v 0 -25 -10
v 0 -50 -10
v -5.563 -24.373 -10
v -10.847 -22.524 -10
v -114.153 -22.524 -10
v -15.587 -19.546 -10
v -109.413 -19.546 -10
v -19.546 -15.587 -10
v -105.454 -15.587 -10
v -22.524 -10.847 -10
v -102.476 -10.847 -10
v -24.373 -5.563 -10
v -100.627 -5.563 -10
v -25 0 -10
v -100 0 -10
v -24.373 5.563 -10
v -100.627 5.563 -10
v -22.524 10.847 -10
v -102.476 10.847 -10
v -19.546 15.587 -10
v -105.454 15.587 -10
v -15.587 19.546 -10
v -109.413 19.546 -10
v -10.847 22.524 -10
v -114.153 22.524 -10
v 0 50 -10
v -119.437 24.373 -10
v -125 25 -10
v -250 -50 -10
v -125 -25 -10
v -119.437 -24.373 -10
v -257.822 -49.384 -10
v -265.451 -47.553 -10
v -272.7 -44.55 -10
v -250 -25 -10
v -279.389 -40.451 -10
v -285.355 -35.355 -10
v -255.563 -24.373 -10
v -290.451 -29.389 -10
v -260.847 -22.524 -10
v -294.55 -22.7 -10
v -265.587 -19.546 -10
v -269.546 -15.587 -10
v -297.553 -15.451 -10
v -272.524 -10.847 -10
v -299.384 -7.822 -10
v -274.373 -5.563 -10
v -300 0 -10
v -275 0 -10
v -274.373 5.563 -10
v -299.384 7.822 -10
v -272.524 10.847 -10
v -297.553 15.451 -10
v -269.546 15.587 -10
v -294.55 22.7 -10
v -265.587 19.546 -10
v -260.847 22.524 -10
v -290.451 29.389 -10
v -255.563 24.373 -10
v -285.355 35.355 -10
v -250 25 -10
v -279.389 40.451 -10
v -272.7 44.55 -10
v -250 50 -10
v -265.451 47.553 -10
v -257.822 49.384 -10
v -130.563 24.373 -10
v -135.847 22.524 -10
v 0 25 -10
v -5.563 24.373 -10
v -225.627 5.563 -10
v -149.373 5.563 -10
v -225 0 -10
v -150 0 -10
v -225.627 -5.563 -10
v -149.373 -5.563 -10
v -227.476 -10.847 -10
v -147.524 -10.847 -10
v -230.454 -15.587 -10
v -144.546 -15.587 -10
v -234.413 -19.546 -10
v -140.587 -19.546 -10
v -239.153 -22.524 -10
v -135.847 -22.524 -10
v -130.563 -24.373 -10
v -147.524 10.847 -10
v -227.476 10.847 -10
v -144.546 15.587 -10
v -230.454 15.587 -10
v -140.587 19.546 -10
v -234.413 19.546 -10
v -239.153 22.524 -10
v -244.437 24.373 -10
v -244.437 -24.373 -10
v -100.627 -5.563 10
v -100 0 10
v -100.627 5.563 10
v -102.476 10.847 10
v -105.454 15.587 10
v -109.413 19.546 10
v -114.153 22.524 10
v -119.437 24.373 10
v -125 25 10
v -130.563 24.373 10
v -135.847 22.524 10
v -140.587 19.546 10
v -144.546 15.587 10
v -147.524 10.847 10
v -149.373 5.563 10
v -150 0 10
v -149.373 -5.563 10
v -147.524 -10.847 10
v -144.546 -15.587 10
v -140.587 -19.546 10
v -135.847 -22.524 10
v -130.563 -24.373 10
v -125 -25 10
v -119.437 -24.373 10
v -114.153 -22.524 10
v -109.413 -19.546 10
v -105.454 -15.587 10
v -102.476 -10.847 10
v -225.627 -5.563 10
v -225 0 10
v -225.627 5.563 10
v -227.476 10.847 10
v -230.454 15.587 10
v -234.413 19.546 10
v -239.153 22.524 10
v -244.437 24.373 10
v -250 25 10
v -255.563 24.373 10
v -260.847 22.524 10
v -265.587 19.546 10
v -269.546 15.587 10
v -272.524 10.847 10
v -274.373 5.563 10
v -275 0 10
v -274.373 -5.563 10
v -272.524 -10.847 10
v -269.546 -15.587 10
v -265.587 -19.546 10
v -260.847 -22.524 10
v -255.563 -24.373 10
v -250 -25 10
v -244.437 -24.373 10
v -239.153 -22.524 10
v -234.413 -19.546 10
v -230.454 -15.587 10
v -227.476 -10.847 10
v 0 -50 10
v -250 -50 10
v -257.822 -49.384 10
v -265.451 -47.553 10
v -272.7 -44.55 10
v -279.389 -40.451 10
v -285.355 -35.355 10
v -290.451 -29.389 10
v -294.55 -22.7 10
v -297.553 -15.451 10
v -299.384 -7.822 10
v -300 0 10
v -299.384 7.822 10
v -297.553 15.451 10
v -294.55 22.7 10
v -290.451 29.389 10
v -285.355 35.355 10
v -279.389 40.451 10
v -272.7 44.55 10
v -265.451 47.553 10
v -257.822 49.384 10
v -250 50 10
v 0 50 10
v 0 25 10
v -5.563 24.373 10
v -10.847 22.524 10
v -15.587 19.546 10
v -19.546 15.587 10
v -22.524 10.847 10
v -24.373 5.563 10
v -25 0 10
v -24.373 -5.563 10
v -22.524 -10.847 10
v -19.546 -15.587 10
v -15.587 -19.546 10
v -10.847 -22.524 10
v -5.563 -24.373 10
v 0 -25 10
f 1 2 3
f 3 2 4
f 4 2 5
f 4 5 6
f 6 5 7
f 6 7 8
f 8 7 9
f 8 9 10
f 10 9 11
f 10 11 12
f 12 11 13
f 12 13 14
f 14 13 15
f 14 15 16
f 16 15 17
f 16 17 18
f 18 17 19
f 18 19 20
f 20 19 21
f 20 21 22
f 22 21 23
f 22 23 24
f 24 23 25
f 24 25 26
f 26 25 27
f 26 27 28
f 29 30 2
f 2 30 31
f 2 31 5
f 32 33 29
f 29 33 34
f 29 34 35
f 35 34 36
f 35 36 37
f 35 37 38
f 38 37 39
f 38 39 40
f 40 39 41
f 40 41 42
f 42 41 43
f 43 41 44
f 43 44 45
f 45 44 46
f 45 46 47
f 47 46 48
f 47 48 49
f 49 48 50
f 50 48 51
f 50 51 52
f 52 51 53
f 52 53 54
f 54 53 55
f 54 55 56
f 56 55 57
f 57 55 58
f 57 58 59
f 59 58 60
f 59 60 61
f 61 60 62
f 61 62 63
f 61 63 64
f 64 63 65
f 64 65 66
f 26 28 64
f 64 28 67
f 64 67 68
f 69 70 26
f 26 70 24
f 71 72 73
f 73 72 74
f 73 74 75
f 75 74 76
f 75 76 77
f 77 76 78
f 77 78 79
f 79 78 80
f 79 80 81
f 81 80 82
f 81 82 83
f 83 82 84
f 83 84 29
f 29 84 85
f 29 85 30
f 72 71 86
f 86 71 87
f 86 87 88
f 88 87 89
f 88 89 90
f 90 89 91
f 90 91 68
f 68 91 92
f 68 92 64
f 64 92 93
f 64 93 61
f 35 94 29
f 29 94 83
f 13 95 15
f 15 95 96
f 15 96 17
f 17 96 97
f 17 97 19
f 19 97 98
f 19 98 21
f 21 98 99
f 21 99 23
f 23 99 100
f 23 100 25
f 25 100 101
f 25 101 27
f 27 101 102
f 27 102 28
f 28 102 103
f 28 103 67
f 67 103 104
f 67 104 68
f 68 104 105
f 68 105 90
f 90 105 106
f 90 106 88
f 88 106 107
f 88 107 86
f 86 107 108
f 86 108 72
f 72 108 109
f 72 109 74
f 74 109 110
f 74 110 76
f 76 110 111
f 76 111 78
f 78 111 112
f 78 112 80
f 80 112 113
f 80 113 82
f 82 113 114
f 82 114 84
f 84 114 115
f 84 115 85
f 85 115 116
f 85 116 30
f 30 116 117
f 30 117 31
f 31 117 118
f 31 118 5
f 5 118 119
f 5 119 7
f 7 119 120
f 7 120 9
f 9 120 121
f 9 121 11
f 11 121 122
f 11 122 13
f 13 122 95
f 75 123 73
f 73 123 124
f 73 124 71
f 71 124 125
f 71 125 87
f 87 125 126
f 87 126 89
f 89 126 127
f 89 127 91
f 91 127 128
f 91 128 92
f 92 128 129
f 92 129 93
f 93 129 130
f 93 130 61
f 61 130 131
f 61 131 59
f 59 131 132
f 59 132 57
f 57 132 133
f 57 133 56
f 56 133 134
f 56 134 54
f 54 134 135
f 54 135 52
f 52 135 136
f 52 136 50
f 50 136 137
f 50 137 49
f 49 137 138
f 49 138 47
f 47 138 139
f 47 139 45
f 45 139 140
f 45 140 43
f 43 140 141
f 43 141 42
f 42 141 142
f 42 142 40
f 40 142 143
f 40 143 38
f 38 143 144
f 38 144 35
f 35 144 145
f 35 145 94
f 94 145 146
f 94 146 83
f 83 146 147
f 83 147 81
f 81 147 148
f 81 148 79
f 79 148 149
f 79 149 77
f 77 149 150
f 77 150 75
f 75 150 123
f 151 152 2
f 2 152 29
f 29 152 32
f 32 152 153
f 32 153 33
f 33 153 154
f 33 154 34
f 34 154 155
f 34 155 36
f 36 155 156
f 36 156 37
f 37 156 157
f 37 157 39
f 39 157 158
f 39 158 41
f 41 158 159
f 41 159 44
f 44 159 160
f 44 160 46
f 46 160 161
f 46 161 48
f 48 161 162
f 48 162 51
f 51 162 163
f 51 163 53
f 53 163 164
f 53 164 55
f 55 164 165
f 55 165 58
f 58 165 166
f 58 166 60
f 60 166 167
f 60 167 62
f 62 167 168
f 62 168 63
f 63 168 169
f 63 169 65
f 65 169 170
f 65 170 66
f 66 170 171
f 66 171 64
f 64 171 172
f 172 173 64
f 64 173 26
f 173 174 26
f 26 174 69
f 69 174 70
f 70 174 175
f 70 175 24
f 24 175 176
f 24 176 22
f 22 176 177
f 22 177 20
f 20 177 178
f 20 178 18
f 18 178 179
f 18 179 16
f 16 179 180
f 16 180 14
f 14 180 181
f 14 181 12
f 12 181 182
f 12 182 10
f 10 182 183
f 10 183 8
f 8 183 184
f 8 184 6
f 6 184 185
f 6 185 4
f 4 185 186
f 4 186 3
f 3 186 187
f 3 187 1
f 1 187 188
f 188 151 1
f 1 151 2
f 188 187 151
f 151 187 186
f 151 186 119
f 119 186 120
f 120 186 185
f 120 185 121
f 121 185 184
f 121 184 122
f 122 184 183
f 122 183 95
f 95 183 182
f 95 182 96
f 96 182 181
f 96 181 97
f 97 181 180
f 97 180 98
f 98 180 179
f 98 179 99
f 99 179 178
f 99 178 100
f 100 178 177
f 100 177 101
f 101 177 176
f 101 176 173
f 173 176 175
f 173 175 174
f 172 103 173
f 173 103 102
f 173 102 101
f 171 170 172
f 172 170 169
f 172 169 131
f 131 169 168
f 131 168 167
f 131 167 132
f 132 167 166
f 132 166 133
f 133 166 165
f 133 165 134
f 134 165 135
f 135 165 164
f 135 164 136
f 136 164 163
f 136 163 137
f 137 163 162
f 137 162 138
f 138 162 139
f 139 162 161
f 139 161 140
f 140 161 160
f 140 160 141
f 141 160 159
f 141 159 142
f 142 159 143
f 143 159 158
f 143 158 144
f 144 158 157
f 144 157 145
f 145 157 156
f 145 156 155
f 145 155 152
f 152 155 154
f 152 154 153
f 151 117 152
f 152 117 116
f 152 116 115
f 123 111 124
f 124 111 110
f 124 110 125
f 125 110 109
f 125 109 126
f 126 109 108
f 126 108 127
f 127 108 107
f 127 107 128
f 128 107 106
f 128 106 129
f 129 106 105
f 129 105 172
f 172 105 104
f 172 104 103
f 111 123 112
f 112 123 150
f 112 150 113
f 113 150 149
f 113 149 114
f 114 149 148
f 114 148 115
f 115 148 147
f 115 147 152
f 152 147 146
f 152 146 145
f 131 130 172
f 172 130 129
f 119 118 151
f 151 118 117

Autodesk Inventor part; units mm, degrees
ref_plane "YZ Plane" through (0, 0, 0) normal (1, 0, 0) x (0, 1, 0)
ref_plane "XZ Plane" through (0, 0, 0) normal (0, 1, 0) x (-1, 0, 0)
ref_plane "XY Plane" through (0, 0, 0) normal (0, 0, 1) x (1, 0, 0)
sketch "Sketch1" plane through (0, 0, 0) normal (0, 0, 1) x (1, 0, 0)
  line L0 (-250, 0) -> (0, 0) construction
  line L1 (-250, -50) -> (0, -50)
  line L2 (0, 50) -> (-250, 50)
  arc A0 (-250, 50) -> (-250, -50) centre (-250, 0) ccw
  line L3 (0, 50) -> (0, -50)
  circle A1 centre (-250, 0) radius 25
  circle A2 centre (-125, 0) radius 25
  circle A3 centre (0, 0) radius 25
  point P0 (-125, 0)
  point P1 (0, -25)
  point P2 (0, 25)
  dimension "d2" = 250
  dimension "d3" = 50
  dimension "d4" = 50
  dimension "d6" = 125
  dimension "d7" = 125
extrude "Extrusion1" add sketch "Sketch1" along normal mid plane 20 contours A0 L2 L3 A3 L1
properties part number "CE-10.2.1.2" material "Aluminum 6061"
